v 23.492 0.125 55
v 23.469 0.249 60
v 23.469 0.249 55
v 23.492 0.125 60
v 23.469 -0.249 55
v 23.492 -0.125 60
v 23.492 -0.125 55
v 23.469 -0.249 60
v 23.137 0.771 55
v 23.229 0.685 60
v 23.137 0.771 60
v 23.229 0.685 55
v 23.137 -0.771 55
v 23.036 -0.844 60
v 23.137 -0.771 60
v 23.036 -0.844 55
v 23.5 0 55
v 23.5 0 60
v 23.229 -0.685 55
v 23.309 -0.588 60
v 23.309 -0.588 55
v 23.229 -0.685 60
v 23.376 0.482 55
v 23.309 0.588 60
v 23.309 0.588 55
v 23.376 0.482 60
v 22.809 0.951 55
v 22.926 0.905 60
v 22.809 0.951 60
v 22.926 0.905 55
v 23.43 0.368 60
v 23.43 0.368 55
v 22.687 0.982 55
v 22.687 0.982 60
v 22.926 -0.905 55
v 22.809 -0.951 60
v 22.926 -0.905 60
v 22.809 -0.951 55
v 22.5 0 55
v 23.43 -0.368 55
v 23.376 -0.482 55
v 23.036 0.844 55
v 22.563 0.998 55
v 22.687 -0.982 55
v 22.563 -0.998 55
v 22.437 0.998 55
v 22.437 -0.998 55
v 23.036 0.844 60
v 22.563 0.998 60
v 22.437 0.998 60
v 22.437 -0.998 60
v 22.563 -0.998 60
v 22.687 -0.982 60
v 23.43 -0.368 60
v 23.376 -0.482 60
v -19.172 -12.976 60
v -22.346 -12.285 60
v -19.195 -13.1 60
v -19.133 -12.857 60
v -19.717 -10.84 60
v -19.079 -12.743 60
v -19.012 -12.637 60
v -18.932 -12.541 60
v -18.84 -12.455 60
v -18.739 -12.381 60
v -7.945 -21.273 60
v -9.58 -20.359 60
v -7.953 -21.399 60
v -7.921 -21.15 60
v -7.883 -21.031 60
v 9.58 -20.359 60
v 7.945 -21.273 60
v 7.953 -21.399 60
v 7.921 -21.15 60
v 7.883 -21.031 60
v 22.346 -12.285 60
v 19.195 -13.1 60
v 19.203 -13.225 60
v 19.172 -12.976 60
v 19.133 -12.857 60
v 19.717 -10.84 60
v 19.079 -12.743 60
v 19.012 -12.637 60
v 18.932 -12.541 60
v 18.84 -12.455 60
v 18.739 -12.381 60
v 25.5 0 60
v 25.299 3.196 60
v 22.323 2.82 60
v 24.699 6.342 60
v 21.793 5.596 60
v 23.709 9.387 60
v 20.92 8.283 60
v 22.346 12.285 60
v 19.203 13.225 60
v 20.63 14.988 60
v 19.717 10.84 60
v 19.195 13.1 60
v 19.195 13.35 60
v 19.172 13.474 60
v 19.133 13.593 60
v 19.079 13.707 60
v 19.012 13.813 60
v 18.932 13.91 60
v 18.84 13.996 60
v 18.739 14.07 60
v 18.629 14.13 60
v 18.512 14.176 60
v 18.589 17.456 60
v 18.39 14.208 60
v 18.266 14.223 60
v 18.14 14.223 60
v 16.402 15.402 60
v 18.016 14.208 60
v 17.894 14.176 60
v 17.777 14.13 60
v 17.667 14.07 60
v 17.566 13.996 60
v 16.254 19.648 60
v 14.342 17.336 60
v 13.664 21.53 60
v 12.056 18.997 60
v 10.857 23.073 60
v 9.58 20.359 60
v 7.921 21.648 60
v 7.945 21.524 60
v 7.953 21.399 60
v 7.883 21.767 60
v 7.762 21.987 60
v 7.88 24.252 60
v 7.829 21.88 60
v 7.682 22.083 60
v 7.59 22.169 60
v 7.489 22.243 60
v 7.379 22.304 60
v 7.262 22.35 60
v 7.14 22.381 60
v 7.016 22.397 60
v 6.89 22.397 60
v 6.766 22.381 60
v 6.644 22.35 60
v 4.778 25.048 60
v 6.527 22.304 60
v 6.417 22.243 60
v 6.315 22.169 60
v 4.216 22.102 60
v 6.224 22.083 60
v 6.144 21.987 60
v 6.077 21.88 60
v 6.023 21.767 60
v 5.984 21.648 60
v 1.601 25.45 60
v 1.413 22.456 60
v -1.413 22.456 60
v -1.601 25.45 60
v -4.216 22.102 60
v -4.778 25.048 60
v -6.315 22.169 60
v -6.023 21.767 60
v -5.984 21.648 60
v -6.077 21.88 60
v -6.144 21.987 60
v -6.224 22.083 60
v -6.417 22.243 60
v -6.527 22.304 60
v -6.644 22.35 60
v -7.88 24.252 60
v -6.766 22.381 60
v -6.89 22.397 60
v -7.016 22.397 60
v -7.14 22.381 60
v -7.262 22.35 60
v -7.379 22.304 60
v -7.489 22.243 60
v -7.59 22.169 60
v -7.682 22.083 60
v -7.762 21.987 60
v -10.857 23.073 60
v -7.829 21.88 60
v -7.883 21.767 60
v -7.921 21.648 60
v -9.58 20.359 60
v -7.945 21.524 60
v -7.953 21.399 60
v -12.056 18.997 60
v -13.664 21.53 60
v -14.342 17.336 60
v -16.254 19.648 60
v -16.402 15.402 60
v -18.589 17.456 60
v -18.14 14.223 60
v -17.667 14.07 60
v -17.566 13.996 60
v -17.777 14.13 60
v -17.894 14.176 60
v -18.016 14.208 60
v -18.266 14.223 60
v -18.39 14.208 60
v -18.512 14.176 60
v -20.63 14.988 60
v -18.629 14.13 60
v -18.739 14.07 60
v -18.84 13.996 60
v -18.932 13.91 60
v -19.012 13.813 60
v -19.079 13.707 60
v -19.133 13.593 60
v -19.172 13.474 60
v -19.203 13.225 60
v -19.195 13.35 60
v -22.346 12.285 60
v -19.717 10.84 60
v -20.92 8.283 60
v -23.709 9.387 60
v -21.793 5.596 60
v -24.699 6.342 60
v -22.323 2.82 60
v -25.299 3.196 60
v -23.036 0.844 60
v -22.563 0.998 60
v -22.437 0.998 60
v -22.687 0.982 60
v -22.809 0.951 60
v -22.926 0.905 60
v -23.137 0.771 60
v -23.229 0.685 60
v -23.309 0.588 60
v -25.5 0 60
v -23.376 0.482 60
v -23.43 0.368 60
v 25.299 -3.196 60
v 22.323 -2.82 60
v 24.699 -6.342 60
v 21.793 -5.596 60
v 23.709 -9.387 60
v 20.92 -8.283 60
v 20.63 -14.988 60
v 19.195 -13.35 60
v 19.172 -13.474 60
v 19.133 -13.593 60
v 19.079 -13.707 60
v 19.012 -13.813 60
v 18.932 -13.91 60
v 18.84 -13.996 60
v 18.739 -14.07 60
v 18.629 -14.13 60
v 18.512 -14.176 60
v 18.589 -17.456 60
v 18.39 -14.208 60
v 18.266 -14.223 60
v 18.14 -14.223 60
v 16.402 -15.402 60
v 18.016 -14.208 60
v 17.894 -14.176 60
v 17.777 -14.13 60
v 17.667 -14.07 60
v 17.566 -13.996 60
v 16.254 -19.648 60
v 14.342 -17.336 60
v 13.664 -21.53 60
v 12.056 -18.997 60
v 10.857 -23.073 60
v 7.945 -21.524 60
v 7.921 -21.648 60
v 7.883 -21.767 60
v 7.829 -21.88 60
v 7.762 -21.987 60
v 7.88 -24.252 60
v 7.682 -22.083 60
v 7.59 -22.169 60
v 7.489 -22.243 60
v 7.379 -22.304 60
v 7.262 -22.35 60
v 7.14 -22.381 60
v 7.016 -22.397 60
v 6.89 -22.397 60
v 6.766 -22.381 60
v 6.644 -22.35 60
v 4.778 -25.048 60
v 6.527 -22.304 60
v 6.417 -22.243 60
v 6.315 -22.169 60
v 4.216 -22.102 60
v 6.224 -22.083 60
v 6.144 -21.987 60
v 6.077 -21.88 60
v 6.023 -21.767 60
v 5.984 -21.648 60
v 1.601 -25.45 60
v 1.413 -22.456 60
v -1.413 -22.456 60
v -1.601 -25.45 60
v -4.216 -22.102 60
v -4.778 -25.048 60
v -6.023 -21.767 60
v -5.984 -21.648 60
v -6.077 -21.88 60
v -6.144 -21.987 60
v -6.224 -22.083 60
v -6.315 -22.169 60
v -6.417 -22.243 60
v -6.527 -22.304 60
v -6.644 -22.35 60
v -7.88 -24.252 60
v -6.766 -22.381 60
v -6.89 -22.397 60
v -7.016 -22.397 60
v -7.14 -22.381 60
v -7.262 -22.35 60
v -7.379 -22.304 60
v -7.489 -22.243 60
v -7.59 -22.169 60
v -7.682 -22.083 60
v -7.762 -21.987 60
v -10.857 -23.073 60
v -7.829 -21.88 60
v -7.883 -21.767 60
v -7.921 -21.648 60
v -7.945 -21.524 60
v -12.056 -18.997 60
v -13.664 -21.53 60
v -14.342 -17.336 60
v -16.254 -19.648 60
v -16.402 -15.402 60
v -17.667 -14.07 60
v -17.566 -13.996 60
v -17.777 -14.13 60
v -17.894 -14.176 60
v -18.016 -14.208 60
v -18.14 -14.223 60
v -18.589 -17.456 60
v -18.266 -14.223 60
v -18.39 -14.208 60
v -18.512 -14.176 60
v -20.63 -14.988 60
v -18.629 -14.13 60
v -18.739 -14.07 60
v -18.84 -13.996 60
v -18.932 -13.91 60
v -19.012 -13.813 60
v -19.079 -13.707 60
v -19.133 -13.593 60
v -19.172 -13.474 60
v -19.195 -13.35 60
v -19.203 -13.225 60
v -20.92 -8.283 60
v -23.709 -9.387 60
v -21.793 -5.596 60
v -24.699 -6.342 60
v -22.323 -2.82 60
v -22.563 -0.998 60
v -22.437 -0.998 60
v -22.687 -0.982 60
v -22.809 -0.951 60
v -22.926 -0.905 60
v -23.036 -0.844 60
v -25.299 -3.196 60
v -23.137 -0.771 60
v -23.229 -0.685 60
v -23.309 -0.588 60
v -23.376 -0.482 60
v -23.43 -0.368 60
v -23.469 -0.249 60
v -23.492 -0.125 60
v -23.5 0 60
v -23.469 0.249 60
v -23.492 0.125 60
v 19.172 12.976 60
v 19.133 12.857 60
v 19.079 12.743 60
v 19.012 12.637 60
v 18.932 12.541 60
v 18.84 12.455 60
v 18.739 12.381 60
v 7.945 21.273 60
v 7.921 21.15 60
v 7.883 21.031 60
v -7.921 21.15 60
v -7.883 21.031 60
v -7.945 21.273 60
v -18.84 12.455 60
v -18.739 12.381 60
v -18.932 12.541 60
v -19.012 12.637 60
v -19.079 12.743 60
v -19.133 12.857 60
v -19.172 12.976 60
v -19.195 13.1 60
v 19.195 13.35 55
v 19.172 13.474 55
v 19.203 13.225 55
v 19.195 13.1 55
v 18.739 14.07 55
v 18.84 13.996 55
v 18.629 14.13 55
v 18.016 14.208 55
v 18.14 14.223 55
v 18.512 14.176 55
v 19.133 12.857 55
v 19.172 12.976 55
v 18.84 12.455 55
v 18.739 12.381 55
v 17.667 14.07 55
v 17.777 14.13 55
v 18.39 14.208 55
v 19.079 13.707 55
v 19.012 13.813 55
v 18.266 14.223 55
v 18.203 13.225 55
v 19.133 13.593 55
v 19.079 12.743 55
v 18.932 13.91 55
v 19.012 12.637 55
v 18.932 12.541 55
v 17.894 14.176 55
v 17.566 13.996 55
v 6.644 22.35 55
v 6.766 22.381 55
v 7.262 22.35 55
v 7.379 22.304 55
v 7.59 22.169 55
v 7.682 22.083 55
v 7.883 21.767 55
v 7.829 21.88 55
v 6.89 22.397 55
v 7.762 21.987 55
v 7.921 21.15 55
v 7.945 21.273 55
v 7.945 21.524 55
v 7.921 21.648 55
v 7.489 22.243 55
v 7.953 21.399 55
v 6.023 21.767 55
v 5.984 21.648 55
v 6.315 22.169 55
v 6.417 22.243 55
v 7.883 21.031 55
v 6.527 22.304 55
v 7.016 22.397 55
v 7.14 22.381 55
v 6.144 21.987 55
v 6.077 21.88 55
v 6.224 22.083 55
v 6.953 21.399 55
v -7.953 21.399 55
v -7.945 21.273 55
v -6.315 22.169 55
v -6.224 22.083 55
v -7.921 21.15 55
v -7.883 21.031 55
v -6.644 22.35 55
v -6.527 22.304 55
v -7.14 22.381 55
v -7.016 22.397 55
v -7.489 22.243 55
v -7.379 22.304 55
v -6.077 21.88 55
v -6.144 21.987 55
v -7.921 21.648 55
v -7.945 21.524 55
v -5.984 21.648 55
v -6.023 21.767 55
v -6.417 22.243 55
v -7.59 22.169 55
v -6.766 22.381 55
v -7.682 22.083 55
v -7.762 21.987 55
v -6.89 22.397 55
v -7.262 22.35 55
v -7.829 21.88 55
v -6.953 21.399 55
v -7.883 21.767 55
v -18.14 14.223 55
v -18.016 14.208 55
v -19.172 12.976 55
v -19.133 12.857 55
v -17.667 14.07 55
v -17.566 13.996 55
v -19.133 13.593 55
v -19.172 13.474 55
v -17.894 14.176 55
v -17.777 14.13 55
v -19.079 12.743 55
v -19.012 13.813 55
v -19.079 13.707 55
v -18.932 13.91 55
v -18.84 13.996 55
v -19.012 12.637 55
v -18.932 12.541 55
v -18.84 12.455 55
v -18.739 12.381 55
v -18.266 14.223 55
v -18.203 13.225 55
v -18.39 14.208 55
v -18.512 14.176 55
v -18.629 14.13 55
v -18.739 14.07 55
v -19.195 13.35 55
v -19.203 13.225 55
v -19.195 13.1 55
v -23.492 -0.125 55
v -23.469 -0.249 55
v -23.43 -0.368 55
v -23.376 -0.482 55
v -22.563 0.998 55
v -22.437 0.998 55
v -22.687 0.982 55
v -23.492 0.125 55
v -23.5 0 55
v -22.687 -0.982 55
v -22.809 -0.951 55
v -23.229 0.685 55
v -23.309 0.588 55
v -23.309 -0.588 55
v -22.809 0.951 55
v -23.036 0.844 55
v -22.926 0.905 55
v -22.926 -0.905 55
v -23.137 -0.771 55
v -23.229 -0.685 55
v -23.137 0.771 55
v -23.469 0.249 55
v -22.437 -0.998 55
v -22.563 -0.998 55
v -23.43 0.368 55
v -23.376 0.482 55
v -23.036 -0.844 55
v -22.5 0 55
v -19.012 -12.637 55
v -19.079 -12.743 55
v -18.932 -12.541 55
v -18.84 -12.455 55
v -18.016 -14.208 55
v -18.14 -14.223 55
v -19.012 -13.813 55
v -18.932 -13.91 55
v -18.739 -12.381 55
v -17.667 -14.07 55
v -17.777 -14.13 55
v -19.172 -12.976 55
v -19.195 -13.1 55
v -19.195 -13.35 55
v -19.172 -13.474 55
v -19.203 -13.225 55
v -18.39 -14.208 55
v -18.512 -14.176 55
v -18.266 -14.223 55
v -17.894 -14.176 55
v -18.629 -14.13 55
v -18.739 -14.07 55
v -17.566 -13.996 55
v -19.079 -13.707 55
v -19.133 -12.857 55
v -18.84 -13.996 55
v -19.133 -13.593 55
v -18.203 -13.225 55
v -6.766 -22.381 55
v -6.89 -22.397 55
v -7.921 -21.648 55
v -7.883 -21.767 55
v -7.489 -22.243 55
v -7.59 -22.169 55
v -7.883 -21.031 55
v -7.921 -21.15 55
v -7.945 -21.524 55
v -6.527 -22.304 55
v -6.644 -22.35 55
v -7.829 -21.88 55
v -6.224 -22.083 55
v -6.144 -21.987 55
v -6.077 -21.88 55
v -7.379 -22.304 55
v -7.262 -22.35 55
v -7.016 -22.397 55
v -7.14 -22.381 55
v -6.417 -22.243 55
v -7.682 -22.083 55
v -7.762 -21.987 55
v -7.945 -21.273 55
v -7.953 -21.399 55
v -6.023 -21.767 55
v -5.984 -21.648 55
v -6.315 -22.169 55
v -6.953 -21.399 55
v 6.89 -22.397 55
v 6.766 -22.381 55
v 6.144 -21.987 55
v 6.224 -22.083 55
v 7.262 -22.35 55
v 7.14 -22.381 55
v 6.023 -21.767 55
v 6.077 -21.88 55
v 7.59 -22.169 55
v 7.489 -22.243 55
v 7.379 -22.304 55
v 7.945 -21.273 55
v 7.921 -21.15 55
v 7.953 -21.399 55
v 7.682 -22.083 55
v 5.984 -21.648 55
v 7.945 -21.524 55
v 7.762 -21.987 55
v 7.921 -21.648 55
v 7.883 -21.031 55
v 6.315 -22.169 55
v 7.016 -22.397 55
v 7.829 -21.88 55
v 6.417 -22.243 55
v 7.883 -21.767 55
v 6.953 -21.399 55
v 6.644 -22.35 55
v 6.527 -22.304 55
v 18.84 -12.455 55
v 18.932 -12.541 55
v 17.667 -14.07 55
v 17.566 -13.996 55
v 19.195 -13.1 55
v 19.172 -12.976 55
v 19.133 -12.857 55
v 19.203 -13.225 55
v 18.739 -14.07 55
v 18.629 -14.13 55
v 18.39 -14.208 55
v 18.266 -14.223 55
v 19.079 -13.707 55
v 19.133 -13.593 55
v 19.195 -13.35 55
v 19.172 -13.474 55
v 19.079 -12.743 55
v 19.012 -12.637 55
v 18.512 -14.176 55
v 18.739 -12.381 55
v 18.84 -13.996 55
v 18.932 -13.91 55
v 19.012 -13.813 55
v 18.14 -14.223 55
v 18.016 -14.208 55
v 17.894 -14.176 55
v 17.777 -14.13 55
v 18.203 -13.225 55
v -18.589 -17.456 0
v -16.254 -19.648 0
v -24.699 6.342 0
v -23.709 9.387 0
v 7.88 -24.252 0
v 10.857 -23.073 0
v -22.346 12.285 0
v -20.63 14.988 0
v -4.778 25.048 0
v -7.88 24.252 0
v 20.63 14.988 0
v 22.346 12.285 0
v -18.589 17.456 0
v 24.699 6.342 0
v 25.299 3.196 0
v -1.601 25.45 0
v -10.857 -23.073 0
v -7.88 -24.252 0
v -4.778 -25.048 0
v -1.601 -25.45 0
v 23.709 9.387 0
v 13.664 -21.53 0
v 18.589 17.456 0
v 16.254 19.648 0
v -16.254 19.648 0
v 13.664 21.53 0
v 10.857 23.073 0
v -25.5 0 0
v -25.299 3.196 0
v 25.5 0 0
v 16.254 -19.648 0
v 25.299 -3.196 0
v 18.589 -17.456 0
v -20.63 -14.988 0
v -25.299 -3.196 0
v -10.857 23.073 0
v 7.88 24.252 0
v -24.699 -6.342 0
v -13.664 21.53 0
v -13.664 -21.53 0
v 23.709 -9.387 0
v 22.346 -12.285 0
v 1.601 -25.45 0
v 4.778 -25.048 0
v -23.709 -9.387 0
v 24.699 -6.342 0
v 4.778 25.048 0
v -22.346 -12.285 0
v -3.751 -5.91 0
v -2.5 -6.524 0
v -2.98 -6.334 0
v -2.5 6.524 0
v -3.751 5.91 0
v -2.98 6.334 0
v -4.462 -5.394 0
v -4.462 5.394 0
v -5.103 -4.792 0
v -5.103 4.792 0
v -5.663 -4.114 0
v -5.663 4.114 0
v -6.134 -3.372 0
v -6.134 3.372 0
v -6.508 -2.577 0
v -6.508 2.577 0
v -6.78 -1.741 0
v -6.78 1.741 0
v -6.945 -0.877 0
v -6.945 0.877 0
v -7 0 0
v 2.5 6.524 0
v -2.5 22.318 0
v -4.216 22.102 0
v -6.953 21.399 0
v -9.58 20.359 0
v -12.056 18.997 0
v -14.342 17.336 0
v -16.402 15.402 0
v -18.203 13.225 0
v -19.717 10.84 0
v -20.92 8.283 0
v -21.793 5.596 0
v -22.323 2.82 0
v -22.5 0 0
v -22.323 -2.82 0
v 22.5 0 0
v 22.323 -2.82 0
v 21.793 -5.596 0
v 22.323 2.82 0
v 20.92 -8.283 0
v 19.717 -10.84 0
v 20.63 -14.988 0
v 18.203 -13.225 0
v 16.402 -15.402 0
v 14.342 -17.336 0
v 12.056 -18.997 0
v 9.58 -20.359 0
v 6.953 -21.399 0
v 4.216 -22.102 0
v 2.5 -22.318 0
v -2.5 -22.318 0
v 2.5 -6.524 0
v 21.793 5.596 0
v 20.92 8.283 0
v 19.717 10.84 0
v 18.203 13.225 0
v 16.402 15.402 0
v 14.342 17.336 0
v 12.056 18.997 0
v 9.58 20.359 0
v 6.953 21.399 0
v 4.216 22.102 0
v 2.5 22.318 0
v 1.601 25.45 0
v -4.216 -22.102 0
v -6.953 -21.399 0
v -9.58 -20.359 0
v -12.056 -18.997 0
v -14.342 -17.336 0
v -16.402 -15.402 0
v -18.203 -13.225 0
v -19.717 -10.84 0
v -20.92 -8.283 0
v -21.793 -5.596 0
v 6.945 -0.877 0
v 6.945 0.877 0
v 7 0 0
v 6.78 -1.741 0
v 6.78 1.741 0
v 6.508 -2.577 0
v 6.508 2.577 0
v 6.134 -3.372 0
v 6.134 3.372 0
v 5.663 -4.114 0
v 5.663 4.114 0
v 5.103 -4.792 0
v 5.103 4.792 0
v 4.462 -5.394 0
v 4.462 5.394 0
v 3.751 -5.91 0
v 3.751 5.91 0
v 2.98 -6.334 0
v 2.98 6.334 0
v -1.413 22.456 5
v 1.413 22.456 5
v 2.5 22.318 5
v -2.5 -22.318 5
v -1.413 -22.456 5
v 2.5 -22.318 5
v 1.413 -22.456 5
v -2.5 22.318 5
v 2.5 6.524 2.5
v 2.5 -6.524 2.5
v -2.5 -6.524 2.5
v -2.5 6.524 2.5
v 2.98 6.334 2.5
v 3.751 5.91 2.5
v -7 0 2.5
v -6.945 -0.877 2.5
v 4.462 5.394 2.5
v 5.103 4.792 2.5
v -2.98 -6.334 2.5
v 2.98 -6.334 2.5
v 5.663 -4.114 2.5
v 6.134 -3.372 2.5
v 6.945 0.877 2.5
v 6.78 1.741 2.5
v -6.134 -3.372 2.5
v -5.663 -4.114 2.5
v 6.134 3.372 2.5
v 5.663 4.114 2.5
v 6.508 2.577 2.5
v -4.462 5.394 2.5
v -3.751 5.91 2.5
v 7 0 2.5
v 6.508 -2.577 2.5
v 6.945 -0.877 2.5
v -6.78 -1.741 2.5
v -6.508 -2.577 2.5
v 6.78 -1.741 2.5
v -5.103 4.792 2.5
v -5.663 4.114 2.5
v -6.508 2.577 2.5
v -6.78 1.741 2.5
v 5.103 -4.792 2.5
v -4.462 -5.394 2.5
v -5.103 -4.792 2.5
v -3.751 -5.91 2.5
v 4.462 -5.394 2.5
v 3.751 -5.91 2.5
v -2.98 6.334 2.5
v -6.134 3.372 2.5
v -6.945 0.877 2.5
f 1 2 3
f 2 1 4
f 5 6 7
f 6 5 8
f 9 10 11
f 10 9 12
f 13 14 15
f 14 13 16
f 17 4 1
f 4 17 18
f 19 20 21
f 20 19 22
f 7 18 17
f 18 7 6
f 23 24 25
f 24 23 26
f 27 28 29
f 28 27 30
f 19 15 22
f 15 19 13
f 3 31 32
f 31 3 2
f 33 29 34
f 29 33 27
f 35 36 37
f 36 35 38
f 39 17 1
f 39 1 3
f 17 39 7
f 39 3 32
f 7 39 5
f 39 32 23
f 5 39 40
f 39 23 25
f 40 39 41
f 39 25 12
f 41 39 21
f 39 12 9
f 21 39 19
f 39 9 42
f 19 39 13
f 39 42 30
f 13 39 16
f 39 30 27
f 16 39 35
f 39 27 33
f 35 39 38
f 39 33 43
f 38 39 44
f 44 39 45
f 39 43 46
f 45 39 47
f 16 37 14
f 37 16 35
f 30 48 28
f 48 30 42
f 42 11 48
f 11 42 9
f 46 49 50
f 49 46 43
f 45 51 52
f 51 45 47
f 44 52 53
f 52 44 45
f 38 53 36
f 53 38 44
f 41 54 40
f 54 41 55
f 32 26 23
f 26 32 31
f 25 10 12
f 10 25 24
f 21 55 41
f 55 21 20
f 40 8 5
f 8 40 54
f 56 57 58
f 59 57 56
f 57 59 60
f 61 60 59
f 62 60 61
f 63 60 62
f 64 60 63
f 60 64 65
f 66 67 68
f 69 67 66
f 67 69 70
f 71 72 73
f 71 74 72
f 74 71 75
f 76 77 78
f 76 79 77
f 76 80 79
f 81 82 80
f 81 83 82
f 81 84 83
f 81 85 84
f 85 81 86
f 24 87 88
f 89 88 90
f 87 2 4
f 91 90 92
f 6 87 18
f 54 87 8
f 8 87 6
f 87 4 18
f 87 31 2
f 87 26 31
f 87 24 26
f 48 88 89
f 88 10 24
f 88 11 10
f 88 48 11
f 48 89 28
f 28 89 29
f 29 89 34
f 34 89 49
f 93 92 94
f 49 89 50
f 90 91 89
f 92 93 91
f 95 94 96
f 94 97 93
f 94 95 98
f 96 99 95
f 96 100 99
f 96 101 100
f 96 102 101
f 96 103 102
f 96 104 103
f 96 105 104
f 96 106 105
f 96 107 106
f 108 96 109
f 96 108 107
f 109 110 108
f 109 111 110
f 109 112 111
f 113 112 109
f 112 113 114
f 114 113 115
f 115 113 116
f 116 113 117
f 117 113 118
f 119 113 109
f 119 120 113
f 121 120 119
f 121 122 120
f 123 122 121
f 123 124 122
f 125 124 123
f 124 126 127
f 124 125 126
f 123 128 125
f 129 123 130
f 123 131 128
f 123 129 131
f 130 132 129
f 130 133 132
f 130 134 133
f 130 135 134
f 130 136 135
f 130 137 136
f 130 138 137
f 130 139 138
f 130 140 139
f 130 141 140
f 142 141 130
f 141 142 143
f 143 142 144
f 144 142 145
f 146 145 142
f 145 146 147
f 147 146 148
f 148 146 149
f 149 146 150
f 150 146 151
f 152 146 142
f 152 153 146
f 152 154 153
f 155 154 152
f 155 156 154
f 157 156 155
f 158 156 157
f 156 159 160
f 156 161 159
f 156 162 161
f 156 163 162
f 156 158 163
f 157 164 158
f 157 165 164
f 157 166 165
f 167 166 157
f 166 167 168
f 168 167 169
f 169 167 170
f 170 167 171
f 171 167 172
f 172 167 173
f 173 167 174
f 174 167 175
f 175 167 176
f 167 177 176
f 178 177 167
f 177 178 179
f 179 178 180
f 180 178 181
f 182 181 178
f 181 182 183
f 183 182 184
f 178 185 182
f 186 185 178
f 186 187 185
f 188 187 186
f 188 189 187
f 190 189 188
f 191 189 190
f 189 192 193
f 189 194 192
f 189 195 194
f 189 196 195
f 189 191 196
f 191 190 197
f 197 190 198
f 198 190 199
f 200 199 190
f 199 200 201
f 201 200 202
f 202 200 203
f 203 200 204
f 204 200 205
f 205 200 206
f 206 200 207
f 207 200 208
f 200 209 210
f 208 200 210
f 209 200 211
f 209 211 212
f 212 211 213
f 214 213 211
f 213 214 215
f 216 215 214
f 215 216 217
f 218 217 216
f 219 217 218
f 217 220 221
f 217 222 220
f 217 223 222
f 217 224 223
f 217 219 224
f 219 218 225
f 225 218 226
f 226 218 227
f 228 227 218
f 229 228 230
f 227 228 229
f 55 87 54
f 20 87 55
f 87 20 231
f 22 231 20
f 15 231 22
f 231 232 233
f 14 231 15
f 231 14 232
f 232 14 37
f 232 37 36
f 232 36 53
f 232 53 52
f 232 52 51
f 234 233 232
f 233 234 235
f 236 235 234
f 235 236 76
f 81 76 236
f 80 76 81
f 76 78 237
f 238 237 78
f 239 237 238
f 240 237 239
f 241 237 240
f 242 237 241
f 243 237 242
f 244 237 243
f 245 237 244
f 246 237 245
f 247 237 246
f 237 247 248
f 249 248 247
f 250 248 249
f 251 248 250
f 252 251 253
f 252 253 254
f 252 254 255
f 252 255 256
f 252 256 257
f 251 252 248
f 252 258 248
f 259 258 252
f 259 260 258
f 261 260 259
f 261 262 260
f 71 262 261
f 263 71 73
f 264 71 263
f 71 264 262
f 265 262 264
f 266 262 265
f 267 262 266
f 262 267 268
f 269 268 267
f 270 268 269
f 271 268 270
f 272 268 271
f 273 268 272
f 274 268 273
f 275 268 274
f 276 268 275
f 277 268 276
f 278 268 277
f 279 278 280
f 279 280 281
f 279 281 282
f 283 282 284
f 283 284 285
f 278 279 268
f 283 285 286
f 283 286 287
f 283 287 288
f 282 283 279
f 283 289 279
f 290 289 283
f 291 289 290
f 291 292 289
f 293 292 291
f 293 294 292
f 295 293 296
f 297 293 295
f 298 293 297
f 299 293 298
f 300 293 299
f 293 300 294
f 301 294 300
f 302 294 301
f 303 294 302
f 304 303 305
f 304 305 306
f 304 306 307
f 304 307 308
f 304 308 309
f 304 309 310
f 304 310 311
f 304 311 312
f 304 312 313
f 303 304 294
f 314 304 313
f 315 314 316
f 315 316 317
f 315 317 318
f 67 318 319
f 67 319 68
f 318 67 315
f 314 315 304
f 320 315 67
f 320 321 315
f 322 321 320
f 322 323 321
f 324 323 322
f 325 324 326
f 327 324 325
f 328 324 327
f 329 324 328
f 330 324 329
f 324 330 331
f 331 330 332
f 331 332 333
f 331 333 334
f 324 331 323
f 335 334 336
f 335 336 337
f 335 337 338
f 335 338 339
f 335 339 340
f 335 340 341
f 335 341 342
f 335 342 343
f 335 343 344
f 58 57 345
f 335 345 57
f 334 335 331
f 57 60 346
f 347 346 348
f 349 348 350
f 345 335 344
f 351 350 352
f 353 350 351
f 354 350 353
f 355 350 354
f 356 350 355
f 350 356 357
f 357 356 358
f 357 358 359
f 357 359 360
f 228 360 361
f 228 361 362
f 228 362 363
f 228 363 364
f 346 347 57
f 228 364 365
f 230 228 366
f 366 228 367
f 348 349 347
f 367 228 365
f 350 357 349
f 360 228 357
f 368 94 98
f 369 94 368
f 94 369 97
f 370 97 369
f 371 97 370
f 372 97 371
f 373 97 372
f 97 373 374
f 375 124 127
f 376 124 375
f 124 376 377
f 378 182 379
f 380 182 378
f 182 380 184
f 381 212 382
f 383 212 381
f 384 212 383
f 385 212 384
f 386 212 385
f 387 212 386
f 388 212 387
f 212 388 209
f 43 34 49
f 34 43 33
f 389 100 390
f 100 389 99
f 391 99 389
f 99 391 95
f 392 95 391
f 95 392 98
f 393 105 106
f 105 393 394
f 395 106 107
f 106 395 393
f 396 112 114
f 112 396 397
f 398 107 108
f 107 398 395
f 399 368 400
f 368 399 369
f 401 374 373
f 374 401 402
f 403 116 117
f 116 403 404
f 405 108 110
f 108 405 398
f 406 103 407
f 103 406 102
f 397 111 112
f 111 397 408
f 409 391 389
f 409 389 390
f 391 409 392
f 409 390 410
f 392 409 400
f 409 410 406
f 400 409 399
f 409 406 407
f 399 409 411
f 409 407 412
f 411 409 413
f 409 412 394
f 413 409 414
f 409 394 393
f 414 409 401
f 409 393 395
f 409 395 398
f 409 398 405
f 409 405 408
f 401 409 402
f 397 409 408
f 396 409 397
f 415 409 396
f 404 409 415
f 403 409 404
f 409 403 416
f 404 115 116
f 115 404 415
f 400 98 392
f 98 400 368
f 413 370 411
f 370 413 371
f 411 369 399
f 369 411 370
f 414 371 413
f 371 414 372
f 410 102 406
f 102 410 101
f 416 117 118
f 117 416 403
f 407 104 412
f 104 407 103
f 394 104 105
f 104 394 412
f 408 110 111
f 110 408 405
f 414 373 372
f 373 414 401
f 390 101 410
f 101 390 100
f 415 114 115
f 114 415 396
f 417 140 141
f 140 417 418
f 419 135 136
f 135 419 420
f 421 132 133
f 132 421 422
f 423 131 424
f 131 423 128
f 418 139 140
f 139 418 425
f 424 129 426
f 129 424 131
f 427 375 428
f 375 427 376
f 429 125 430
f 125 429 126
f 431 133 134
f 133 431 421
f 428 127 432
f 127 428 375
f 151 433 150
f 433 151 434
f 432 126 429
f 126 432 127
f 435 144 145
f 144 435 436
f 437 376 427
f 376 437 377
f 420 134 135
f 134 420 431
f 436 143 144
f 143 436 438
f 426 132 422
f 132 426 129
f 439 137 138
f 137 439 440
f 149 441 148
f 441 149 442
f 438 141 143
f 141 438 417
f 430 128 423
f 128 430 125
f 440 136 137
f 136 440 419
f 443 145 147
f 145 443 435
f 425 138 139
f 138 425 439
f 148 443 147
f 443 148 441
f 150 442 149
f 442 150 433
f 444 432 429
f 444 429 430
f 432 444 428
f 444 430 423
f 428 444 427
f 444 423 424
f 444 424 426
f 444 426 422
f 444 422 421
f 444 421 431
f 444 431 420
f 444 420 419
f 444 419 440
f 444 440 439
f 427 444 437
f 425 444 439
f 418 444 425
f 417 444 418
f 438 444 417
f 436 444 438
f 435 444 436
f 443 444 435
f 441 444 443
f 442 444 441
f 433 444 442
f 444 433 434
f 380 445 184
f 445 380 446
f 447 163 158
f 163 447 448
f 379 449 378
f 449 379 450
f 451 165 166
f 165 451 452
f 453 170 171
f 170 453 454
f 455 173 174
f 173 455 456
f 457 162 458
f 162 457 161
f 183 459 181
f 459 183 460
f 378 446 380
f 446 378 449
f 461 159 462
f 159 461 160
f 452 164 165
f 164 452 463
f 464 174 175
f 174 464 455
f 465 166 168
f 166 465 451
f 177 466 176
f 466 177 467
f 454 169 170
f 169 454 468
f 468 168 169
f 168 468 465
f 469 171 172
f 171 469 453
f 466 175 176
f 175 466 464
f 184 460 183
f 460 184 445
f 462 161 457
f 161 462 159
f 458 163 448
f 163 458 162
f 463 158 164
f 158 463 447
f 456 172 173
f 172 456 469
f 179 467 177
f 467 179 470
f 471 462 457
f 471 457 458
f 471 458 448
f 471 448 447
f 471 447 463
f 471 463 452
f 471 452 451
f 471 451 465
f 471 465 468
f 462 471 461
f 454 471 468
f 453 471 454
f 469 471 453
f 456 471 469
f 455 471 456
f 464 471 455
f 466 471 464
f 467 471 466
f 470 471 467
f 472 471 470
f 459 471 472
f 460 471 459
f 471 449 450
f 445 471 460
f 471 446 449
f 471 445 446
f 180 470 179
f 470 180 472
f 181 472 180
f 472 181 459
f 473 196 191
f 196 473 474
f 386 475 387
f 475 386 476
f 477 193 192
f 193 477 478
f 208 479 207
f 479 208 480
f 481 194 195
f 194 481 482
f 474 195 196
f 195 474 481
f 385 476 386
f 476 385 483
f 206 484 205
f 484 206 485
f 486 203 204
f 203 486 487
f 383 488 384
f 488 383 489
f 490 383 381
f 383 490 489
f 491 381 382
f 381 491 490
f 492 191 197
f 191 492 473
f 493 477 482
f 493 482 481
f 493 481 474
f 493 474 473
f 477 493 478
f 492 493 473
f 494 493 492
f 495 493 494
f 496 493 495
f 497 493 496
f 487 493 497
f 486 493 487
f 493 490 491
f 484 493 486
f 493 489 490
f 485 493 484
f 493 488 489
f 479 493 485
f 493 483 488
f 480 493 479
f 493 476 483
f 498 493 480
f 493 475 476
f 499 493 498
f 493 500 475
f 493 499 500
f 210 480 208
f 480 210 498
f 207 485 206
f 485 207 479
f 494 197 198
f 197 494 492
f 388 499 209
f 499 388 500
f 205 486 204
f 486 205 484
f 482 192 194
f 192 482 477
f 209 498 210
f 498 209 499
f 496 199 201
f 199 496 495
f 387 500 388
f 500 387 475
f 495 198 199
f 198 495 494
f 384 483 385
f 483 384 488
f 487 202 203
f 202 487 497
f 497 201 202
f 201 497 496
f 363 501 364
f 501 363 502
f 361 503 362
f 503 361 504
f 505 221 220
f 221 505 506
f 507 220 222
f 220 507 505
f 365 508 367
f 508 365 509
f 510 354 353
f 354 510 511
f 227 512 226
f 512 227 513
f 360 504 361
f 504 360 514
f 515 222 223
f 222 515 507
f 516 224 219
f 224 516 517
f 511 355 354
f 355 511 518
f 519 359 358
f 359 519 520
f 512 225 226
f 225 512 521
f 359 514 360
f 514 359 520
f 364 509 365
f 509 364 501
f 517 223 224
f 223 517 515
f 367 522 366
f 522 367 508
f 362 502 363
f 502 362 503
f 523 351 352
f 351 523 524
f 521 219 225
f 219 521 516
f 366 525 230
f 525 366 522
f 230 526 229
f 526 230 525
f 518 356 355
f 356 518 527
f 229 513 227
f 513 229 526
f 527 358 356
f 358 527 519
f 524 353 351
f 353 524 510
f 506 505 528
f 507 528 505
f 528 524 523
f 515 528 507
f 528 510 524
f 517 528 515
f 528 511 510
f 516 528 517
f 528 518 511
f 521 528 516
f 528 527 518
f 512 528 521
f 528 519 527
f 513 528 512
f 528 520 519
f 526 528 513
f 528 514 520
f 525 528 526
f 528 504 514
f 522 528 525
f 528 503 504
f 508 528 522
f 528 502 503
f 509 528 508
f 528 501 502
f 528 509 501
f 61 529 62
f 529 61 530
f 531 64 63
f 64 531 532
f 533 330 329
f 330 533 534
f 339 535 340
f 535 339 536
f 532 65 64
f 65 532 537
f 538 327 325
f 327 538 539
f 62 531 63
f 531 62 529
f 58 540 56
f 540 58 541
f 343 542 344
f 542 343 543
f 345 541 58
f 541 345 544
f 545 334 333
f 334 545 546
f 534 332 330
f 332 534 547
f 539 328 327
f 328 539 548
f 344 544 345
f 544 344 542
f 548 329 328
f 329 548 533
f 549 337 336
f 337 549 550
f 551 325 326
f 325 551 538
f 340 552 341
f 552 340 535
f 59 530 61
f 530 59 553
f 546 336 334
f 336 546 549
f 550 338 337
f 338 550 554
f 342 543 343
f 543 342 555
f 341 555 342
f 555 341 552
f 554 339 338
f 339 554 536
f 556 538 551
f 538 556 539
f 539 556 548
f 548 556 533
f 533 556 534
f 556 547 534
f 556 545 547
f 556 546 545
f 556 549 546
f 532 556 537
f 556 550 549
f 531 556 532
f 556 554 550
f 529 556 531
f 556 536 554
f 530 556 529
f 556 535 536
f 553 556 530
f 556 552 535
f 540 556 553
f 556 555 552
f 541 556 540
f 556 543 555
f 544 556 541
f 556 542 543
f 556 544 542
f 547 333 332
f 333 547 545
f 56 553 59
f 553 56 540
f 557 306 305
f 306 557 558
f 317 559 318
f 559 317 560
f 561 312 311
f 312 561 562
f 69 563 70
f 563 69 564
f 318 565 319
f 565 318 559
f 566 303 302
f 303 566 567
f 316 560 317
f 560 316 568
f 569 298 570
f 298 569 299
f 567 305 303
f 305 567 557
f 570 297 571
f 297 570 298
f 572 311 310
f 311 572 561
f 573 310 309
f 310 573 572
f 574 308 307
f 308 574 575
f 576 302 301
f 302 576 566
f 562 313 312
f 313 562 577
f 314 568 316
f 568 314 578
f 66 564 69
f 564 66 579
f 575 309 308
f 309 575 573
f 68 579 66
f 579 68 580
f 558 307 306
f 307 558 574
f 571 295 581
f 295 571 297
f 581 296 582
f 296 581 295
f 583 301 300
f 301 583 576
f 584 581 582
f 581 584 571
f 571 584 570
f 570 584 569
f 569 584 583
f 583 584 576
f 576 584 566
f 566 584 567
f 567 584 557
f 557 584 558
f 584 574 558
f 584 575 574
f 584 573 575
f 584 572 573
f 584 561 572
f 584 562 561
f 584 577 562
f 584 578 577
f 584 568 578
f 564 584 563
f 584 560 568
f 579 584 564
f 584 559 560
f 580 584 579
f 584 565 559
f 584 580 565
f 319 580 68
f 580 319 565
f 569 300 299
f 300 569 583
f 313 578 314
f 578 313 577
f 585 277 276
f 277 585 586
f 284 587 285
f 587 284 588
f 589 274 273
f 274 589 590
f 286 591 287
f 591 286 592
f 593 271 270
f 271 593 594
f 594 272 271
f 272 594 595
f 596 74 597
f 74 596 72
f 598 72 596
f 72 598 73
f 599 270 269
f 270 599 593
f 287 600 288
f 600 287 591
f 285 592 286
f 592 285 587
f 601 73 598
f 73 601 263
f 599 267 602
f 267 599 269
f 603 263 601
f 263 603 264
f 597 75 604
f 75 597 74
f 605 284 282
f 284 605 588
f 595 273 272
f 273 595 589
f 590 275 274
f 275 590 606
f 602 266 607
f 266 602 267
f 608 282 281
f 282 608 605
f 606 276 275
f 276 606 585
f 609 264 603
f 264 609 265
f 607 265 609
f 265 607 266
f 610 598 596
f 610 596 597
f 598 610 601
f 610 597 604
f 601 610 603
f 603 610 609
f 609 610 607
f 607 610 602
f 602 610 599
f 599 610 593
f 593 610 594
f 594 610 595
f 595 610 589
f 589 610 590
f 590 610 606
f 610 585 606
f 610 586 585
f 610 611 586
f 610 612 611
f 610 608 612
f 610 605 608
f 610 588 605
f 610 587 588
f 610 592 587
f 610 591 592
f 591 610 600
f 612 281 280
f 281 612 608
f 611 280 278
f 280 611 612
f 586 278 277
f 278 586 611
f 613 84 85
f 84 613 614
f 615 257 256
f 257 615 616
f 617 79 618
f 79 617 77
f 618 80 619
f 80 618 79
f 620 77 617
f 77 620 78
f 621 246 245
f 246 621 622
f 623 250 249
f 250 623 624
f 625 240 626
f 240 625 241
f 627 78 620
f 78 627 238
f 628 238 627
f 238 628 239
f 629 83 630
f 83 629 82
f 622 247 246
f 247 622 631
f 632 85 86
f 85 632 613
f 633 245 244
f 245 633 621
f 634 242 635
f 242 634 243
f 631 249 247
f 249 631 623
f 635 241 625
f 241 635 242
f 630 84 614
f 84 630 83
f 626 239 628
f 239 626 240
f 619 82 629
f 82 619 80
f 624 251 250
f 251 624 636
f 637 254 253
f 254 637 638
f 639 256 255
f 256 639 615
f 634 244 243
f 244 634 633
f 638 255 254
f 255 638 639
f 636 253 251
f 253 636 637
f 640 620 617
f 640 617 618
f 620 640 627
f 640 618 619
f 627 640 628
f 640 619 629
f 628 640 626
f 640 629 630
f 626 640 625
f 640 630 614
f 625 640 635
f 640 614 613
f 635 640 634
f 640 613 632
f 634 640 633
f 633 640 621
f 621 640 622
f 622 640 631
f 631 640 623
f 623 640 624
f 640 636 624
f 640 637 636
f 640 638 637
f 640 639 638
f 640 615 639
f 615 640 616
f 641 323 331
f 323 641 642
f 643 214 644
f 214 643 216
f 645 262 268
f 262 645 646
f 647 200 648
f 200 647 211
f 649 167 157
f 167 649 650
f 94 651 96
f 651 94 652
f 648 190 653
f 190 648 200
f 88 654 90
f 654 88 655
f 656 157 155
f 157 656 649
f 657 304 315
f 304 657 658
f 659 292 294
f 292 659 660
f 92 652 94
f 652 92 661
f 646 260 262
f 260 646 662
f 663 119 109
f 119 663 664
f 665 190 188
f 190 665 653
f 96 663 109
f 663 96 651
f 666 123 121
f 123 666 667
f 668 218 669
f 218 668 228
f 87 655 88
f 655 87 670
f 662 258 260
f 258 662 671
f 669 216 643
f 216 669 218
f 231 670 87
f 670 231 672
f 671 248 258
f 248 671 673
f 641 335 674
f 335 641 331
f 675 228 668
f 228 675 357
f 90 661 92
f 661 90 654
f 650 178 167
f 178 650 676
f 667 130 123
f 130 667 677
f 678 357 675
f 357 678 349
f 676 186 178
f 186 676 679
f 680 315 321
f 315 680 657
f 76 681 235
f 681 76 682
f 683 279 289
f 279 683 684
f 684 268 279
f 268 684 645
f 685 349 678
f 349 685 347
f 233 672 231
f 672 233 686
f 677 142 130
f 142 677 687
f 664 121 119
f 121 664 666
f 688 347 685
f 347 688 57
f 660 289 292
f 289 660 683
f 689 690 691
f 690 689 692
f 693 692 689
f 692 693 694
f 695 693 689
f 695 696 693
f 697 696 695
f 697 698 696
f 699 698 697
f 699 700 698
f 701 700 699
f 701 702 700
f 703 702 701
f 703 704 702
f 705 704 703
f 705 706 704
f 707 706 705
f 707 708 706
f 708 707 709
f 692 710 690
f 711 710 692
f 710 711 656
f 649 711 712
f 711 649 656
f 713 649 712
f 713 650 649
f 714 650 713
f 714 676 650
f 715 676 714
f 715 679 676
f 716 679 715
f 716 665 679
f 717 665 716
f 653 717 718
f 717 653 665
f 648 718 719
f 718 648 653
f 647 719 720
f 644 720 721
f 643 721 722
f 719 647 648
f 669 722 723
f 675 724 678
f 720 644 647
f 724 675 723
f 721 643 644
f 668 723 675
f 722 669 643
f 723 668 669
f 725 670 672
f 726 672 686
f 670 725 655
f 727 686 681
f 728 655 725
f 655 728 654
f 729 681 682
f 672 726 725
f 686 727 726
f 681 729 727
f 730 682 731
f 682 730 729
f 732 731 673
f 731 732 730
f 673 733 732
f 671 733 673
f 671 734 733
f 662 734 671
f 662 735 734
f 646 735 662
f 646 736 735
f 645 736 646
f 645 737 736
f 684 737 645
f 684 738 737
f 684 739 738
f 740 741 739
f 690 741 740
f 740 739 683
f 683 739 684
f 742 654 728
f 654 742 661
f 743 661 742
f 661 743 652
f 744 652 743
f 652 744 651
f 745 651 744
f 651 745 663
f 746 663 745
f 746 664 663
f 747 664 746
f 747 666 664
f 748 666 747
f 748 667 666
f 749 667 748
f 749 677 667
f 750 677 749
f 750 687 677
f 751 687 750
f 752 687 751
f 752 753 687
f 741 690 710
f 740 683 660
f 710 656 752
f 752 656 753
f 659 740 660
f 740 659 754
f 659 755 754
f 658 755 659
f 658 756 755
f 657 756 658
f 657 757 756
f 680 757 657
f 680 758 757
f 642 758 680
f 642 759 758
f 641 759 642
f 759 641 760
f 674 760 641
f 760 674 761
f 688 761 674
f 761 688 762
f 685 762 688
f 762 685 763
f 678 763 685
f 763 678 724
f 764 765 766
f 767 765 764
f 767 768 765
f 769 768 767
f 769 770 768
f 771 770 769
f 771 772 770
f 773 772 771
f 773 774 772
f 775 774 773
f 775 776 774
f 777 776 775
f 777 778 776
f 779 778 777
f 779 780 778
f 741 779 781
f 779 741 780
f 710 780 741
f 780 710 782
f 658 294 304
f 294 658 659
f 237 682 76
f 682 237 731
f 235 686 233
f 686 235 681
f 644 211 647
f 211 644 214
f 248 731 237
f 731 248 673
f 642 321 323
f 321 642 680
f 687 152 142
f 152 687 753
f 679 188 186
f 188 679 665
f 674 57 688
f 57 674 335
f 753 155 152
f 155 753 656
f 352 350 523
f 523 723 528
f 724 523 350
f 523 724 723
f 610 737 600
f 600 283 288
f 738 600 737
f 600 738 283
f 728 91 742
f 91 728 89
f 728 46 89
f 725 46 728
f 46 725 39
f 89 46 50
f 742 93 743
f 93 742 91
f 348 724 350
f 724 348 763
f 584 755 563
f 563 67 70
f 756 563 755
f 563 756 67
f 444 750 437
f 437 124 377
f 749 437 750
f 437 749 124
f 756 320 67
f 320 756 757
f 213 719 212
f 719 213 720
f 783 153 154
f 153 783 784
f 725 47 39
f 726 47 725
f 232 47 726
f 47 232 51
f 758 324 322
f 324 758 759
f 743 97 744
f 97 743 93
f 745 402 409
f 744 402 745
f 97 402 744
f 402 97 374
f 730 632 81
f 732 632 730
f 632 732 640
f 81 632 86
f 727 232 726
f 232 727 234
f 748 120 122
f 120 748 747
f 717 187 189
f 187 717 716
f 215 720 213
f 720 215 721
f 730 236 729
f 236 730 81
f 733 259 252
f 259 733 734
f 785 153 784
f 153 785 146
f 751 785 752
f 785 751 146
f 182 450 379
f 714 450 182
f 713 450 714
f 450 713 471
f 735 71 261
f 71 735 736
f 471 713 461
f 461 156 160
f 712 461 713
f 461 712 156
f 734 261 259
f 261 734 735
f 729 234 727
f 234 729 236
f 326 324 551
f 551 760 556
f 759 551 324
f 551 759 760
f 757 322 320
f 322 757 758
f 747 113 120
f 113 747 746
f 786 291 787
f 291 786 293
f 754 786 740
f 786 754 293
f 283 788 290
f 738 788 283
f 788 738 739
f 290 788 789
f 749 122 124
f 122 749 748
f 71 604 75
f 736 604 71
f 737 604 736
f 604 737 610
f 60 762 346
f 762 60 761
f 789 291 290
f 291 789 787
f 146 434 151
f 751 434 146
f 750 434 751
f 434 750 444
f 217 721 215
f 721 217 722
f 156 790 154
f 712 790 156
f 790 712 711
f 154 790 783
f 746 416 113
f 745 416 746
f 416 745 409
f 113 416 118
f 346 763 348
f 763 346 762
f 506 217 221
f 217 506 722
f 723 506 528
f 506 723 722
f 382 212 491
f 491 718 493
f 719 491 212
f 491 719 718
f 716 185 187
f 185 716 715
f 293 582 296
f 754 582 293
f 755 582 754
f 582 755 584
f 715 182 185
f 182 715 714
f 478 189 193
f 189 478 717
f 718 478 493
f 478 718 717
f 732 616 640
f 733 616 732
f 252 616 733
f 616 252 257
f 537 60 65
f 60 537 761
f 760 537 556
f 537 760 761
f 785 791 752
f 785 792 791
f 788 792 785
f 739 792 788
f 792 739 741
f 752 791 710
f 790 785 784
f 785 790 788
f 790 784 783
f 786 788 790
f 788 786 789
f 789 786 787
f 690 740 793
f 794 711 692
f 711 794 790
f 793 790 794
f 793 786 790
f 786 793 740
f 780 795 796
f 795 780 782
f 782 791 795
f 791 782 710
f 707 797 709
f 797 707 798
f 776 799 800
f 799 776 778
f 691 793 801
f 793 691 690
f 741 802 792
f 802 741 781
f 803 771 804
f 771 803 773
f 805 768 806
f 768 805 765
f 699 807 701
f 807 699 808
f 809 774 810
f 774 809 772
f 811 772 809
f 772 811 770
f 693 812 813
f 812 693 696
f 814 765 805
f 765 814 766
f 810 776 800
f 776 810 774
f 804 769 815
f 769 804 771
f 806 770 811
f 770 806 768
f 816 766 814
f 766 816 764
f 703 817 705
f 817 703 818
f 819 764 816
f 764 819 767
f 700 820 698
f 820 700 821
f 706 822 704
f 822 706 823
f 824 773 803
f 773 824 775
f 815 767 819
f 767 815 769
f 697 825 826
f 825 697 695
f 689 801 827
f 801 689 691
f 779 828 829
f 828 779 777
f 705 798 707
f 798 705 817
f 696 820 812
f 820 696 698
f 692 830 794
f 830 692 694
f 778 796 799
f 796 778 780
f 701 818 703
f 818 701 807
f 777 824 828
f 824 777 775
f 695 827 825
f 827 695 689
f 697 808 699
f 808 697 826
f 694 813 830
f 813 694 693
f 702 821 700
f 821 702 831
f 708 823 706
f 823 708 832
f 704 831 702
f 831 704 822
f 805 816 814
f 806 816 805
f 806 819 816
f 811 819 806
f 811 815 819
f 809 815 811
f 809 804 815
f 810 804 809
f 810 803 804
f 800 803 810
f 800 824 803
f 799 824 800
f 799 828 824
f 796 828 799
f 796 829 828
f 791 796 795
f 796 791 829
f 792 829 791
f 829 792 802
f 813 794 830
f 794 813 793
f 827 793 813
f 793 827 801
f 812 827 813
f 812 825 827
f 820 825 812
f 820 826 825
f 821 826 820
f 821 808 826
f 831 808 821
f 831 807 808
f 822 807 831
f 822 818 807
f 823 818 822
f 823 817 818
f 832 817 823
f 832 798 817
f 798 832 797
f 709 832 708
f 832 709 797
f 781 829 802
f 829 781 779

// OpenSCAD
// Light shade ring driver.
// Makes attaching light shades and covers easier.

$fn=50;

d0=51;
d1=45;
height=60;

npips=10;
pip_diameter=2;
pip_height=5;

bar_height=5;
bar_width=5;
bar_center=14;

module main() {
  difference() {
    cylinder(height,d=d0);
    cylinder(height,d=d1);
    for (i=[0:npips-1]) {
      degrees=360/npips*i;
      #translate([d1*cos(degrees)/2,d1*sin(degrees)/2,height-pip_height])
        cylinder(pip_height,d=pip_diameter);
    }
  }
  translate([-bar_width/2,-d1/2,0]) cube([bar_width,d1,bar_height]);
  cylinder(bar_height/2,d=bar_center);
}

main();
